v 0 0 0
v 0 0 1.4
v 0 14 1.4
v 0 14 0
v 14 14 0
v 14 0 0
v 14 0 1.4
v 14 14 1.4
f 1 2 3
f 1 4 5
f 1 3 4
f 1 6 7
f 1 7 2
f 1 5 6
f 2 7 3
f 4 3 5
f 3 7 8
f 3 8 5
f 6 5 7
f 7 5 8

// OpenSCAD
/* Warning, this is a very basic generator with a lot of approximation 
input data : [LQFP, 2NB, 14x14x1.4mm, 100, , A, C04-21007A]
generated by com.zoubworld.electronics.cad.model3d.Basic
Date : Sun Feb 15 10:50:49 CET 2026
*/

//body
color("black")
translate([0,0,0])
cube([14.0,14.0,1.4], center=false);
